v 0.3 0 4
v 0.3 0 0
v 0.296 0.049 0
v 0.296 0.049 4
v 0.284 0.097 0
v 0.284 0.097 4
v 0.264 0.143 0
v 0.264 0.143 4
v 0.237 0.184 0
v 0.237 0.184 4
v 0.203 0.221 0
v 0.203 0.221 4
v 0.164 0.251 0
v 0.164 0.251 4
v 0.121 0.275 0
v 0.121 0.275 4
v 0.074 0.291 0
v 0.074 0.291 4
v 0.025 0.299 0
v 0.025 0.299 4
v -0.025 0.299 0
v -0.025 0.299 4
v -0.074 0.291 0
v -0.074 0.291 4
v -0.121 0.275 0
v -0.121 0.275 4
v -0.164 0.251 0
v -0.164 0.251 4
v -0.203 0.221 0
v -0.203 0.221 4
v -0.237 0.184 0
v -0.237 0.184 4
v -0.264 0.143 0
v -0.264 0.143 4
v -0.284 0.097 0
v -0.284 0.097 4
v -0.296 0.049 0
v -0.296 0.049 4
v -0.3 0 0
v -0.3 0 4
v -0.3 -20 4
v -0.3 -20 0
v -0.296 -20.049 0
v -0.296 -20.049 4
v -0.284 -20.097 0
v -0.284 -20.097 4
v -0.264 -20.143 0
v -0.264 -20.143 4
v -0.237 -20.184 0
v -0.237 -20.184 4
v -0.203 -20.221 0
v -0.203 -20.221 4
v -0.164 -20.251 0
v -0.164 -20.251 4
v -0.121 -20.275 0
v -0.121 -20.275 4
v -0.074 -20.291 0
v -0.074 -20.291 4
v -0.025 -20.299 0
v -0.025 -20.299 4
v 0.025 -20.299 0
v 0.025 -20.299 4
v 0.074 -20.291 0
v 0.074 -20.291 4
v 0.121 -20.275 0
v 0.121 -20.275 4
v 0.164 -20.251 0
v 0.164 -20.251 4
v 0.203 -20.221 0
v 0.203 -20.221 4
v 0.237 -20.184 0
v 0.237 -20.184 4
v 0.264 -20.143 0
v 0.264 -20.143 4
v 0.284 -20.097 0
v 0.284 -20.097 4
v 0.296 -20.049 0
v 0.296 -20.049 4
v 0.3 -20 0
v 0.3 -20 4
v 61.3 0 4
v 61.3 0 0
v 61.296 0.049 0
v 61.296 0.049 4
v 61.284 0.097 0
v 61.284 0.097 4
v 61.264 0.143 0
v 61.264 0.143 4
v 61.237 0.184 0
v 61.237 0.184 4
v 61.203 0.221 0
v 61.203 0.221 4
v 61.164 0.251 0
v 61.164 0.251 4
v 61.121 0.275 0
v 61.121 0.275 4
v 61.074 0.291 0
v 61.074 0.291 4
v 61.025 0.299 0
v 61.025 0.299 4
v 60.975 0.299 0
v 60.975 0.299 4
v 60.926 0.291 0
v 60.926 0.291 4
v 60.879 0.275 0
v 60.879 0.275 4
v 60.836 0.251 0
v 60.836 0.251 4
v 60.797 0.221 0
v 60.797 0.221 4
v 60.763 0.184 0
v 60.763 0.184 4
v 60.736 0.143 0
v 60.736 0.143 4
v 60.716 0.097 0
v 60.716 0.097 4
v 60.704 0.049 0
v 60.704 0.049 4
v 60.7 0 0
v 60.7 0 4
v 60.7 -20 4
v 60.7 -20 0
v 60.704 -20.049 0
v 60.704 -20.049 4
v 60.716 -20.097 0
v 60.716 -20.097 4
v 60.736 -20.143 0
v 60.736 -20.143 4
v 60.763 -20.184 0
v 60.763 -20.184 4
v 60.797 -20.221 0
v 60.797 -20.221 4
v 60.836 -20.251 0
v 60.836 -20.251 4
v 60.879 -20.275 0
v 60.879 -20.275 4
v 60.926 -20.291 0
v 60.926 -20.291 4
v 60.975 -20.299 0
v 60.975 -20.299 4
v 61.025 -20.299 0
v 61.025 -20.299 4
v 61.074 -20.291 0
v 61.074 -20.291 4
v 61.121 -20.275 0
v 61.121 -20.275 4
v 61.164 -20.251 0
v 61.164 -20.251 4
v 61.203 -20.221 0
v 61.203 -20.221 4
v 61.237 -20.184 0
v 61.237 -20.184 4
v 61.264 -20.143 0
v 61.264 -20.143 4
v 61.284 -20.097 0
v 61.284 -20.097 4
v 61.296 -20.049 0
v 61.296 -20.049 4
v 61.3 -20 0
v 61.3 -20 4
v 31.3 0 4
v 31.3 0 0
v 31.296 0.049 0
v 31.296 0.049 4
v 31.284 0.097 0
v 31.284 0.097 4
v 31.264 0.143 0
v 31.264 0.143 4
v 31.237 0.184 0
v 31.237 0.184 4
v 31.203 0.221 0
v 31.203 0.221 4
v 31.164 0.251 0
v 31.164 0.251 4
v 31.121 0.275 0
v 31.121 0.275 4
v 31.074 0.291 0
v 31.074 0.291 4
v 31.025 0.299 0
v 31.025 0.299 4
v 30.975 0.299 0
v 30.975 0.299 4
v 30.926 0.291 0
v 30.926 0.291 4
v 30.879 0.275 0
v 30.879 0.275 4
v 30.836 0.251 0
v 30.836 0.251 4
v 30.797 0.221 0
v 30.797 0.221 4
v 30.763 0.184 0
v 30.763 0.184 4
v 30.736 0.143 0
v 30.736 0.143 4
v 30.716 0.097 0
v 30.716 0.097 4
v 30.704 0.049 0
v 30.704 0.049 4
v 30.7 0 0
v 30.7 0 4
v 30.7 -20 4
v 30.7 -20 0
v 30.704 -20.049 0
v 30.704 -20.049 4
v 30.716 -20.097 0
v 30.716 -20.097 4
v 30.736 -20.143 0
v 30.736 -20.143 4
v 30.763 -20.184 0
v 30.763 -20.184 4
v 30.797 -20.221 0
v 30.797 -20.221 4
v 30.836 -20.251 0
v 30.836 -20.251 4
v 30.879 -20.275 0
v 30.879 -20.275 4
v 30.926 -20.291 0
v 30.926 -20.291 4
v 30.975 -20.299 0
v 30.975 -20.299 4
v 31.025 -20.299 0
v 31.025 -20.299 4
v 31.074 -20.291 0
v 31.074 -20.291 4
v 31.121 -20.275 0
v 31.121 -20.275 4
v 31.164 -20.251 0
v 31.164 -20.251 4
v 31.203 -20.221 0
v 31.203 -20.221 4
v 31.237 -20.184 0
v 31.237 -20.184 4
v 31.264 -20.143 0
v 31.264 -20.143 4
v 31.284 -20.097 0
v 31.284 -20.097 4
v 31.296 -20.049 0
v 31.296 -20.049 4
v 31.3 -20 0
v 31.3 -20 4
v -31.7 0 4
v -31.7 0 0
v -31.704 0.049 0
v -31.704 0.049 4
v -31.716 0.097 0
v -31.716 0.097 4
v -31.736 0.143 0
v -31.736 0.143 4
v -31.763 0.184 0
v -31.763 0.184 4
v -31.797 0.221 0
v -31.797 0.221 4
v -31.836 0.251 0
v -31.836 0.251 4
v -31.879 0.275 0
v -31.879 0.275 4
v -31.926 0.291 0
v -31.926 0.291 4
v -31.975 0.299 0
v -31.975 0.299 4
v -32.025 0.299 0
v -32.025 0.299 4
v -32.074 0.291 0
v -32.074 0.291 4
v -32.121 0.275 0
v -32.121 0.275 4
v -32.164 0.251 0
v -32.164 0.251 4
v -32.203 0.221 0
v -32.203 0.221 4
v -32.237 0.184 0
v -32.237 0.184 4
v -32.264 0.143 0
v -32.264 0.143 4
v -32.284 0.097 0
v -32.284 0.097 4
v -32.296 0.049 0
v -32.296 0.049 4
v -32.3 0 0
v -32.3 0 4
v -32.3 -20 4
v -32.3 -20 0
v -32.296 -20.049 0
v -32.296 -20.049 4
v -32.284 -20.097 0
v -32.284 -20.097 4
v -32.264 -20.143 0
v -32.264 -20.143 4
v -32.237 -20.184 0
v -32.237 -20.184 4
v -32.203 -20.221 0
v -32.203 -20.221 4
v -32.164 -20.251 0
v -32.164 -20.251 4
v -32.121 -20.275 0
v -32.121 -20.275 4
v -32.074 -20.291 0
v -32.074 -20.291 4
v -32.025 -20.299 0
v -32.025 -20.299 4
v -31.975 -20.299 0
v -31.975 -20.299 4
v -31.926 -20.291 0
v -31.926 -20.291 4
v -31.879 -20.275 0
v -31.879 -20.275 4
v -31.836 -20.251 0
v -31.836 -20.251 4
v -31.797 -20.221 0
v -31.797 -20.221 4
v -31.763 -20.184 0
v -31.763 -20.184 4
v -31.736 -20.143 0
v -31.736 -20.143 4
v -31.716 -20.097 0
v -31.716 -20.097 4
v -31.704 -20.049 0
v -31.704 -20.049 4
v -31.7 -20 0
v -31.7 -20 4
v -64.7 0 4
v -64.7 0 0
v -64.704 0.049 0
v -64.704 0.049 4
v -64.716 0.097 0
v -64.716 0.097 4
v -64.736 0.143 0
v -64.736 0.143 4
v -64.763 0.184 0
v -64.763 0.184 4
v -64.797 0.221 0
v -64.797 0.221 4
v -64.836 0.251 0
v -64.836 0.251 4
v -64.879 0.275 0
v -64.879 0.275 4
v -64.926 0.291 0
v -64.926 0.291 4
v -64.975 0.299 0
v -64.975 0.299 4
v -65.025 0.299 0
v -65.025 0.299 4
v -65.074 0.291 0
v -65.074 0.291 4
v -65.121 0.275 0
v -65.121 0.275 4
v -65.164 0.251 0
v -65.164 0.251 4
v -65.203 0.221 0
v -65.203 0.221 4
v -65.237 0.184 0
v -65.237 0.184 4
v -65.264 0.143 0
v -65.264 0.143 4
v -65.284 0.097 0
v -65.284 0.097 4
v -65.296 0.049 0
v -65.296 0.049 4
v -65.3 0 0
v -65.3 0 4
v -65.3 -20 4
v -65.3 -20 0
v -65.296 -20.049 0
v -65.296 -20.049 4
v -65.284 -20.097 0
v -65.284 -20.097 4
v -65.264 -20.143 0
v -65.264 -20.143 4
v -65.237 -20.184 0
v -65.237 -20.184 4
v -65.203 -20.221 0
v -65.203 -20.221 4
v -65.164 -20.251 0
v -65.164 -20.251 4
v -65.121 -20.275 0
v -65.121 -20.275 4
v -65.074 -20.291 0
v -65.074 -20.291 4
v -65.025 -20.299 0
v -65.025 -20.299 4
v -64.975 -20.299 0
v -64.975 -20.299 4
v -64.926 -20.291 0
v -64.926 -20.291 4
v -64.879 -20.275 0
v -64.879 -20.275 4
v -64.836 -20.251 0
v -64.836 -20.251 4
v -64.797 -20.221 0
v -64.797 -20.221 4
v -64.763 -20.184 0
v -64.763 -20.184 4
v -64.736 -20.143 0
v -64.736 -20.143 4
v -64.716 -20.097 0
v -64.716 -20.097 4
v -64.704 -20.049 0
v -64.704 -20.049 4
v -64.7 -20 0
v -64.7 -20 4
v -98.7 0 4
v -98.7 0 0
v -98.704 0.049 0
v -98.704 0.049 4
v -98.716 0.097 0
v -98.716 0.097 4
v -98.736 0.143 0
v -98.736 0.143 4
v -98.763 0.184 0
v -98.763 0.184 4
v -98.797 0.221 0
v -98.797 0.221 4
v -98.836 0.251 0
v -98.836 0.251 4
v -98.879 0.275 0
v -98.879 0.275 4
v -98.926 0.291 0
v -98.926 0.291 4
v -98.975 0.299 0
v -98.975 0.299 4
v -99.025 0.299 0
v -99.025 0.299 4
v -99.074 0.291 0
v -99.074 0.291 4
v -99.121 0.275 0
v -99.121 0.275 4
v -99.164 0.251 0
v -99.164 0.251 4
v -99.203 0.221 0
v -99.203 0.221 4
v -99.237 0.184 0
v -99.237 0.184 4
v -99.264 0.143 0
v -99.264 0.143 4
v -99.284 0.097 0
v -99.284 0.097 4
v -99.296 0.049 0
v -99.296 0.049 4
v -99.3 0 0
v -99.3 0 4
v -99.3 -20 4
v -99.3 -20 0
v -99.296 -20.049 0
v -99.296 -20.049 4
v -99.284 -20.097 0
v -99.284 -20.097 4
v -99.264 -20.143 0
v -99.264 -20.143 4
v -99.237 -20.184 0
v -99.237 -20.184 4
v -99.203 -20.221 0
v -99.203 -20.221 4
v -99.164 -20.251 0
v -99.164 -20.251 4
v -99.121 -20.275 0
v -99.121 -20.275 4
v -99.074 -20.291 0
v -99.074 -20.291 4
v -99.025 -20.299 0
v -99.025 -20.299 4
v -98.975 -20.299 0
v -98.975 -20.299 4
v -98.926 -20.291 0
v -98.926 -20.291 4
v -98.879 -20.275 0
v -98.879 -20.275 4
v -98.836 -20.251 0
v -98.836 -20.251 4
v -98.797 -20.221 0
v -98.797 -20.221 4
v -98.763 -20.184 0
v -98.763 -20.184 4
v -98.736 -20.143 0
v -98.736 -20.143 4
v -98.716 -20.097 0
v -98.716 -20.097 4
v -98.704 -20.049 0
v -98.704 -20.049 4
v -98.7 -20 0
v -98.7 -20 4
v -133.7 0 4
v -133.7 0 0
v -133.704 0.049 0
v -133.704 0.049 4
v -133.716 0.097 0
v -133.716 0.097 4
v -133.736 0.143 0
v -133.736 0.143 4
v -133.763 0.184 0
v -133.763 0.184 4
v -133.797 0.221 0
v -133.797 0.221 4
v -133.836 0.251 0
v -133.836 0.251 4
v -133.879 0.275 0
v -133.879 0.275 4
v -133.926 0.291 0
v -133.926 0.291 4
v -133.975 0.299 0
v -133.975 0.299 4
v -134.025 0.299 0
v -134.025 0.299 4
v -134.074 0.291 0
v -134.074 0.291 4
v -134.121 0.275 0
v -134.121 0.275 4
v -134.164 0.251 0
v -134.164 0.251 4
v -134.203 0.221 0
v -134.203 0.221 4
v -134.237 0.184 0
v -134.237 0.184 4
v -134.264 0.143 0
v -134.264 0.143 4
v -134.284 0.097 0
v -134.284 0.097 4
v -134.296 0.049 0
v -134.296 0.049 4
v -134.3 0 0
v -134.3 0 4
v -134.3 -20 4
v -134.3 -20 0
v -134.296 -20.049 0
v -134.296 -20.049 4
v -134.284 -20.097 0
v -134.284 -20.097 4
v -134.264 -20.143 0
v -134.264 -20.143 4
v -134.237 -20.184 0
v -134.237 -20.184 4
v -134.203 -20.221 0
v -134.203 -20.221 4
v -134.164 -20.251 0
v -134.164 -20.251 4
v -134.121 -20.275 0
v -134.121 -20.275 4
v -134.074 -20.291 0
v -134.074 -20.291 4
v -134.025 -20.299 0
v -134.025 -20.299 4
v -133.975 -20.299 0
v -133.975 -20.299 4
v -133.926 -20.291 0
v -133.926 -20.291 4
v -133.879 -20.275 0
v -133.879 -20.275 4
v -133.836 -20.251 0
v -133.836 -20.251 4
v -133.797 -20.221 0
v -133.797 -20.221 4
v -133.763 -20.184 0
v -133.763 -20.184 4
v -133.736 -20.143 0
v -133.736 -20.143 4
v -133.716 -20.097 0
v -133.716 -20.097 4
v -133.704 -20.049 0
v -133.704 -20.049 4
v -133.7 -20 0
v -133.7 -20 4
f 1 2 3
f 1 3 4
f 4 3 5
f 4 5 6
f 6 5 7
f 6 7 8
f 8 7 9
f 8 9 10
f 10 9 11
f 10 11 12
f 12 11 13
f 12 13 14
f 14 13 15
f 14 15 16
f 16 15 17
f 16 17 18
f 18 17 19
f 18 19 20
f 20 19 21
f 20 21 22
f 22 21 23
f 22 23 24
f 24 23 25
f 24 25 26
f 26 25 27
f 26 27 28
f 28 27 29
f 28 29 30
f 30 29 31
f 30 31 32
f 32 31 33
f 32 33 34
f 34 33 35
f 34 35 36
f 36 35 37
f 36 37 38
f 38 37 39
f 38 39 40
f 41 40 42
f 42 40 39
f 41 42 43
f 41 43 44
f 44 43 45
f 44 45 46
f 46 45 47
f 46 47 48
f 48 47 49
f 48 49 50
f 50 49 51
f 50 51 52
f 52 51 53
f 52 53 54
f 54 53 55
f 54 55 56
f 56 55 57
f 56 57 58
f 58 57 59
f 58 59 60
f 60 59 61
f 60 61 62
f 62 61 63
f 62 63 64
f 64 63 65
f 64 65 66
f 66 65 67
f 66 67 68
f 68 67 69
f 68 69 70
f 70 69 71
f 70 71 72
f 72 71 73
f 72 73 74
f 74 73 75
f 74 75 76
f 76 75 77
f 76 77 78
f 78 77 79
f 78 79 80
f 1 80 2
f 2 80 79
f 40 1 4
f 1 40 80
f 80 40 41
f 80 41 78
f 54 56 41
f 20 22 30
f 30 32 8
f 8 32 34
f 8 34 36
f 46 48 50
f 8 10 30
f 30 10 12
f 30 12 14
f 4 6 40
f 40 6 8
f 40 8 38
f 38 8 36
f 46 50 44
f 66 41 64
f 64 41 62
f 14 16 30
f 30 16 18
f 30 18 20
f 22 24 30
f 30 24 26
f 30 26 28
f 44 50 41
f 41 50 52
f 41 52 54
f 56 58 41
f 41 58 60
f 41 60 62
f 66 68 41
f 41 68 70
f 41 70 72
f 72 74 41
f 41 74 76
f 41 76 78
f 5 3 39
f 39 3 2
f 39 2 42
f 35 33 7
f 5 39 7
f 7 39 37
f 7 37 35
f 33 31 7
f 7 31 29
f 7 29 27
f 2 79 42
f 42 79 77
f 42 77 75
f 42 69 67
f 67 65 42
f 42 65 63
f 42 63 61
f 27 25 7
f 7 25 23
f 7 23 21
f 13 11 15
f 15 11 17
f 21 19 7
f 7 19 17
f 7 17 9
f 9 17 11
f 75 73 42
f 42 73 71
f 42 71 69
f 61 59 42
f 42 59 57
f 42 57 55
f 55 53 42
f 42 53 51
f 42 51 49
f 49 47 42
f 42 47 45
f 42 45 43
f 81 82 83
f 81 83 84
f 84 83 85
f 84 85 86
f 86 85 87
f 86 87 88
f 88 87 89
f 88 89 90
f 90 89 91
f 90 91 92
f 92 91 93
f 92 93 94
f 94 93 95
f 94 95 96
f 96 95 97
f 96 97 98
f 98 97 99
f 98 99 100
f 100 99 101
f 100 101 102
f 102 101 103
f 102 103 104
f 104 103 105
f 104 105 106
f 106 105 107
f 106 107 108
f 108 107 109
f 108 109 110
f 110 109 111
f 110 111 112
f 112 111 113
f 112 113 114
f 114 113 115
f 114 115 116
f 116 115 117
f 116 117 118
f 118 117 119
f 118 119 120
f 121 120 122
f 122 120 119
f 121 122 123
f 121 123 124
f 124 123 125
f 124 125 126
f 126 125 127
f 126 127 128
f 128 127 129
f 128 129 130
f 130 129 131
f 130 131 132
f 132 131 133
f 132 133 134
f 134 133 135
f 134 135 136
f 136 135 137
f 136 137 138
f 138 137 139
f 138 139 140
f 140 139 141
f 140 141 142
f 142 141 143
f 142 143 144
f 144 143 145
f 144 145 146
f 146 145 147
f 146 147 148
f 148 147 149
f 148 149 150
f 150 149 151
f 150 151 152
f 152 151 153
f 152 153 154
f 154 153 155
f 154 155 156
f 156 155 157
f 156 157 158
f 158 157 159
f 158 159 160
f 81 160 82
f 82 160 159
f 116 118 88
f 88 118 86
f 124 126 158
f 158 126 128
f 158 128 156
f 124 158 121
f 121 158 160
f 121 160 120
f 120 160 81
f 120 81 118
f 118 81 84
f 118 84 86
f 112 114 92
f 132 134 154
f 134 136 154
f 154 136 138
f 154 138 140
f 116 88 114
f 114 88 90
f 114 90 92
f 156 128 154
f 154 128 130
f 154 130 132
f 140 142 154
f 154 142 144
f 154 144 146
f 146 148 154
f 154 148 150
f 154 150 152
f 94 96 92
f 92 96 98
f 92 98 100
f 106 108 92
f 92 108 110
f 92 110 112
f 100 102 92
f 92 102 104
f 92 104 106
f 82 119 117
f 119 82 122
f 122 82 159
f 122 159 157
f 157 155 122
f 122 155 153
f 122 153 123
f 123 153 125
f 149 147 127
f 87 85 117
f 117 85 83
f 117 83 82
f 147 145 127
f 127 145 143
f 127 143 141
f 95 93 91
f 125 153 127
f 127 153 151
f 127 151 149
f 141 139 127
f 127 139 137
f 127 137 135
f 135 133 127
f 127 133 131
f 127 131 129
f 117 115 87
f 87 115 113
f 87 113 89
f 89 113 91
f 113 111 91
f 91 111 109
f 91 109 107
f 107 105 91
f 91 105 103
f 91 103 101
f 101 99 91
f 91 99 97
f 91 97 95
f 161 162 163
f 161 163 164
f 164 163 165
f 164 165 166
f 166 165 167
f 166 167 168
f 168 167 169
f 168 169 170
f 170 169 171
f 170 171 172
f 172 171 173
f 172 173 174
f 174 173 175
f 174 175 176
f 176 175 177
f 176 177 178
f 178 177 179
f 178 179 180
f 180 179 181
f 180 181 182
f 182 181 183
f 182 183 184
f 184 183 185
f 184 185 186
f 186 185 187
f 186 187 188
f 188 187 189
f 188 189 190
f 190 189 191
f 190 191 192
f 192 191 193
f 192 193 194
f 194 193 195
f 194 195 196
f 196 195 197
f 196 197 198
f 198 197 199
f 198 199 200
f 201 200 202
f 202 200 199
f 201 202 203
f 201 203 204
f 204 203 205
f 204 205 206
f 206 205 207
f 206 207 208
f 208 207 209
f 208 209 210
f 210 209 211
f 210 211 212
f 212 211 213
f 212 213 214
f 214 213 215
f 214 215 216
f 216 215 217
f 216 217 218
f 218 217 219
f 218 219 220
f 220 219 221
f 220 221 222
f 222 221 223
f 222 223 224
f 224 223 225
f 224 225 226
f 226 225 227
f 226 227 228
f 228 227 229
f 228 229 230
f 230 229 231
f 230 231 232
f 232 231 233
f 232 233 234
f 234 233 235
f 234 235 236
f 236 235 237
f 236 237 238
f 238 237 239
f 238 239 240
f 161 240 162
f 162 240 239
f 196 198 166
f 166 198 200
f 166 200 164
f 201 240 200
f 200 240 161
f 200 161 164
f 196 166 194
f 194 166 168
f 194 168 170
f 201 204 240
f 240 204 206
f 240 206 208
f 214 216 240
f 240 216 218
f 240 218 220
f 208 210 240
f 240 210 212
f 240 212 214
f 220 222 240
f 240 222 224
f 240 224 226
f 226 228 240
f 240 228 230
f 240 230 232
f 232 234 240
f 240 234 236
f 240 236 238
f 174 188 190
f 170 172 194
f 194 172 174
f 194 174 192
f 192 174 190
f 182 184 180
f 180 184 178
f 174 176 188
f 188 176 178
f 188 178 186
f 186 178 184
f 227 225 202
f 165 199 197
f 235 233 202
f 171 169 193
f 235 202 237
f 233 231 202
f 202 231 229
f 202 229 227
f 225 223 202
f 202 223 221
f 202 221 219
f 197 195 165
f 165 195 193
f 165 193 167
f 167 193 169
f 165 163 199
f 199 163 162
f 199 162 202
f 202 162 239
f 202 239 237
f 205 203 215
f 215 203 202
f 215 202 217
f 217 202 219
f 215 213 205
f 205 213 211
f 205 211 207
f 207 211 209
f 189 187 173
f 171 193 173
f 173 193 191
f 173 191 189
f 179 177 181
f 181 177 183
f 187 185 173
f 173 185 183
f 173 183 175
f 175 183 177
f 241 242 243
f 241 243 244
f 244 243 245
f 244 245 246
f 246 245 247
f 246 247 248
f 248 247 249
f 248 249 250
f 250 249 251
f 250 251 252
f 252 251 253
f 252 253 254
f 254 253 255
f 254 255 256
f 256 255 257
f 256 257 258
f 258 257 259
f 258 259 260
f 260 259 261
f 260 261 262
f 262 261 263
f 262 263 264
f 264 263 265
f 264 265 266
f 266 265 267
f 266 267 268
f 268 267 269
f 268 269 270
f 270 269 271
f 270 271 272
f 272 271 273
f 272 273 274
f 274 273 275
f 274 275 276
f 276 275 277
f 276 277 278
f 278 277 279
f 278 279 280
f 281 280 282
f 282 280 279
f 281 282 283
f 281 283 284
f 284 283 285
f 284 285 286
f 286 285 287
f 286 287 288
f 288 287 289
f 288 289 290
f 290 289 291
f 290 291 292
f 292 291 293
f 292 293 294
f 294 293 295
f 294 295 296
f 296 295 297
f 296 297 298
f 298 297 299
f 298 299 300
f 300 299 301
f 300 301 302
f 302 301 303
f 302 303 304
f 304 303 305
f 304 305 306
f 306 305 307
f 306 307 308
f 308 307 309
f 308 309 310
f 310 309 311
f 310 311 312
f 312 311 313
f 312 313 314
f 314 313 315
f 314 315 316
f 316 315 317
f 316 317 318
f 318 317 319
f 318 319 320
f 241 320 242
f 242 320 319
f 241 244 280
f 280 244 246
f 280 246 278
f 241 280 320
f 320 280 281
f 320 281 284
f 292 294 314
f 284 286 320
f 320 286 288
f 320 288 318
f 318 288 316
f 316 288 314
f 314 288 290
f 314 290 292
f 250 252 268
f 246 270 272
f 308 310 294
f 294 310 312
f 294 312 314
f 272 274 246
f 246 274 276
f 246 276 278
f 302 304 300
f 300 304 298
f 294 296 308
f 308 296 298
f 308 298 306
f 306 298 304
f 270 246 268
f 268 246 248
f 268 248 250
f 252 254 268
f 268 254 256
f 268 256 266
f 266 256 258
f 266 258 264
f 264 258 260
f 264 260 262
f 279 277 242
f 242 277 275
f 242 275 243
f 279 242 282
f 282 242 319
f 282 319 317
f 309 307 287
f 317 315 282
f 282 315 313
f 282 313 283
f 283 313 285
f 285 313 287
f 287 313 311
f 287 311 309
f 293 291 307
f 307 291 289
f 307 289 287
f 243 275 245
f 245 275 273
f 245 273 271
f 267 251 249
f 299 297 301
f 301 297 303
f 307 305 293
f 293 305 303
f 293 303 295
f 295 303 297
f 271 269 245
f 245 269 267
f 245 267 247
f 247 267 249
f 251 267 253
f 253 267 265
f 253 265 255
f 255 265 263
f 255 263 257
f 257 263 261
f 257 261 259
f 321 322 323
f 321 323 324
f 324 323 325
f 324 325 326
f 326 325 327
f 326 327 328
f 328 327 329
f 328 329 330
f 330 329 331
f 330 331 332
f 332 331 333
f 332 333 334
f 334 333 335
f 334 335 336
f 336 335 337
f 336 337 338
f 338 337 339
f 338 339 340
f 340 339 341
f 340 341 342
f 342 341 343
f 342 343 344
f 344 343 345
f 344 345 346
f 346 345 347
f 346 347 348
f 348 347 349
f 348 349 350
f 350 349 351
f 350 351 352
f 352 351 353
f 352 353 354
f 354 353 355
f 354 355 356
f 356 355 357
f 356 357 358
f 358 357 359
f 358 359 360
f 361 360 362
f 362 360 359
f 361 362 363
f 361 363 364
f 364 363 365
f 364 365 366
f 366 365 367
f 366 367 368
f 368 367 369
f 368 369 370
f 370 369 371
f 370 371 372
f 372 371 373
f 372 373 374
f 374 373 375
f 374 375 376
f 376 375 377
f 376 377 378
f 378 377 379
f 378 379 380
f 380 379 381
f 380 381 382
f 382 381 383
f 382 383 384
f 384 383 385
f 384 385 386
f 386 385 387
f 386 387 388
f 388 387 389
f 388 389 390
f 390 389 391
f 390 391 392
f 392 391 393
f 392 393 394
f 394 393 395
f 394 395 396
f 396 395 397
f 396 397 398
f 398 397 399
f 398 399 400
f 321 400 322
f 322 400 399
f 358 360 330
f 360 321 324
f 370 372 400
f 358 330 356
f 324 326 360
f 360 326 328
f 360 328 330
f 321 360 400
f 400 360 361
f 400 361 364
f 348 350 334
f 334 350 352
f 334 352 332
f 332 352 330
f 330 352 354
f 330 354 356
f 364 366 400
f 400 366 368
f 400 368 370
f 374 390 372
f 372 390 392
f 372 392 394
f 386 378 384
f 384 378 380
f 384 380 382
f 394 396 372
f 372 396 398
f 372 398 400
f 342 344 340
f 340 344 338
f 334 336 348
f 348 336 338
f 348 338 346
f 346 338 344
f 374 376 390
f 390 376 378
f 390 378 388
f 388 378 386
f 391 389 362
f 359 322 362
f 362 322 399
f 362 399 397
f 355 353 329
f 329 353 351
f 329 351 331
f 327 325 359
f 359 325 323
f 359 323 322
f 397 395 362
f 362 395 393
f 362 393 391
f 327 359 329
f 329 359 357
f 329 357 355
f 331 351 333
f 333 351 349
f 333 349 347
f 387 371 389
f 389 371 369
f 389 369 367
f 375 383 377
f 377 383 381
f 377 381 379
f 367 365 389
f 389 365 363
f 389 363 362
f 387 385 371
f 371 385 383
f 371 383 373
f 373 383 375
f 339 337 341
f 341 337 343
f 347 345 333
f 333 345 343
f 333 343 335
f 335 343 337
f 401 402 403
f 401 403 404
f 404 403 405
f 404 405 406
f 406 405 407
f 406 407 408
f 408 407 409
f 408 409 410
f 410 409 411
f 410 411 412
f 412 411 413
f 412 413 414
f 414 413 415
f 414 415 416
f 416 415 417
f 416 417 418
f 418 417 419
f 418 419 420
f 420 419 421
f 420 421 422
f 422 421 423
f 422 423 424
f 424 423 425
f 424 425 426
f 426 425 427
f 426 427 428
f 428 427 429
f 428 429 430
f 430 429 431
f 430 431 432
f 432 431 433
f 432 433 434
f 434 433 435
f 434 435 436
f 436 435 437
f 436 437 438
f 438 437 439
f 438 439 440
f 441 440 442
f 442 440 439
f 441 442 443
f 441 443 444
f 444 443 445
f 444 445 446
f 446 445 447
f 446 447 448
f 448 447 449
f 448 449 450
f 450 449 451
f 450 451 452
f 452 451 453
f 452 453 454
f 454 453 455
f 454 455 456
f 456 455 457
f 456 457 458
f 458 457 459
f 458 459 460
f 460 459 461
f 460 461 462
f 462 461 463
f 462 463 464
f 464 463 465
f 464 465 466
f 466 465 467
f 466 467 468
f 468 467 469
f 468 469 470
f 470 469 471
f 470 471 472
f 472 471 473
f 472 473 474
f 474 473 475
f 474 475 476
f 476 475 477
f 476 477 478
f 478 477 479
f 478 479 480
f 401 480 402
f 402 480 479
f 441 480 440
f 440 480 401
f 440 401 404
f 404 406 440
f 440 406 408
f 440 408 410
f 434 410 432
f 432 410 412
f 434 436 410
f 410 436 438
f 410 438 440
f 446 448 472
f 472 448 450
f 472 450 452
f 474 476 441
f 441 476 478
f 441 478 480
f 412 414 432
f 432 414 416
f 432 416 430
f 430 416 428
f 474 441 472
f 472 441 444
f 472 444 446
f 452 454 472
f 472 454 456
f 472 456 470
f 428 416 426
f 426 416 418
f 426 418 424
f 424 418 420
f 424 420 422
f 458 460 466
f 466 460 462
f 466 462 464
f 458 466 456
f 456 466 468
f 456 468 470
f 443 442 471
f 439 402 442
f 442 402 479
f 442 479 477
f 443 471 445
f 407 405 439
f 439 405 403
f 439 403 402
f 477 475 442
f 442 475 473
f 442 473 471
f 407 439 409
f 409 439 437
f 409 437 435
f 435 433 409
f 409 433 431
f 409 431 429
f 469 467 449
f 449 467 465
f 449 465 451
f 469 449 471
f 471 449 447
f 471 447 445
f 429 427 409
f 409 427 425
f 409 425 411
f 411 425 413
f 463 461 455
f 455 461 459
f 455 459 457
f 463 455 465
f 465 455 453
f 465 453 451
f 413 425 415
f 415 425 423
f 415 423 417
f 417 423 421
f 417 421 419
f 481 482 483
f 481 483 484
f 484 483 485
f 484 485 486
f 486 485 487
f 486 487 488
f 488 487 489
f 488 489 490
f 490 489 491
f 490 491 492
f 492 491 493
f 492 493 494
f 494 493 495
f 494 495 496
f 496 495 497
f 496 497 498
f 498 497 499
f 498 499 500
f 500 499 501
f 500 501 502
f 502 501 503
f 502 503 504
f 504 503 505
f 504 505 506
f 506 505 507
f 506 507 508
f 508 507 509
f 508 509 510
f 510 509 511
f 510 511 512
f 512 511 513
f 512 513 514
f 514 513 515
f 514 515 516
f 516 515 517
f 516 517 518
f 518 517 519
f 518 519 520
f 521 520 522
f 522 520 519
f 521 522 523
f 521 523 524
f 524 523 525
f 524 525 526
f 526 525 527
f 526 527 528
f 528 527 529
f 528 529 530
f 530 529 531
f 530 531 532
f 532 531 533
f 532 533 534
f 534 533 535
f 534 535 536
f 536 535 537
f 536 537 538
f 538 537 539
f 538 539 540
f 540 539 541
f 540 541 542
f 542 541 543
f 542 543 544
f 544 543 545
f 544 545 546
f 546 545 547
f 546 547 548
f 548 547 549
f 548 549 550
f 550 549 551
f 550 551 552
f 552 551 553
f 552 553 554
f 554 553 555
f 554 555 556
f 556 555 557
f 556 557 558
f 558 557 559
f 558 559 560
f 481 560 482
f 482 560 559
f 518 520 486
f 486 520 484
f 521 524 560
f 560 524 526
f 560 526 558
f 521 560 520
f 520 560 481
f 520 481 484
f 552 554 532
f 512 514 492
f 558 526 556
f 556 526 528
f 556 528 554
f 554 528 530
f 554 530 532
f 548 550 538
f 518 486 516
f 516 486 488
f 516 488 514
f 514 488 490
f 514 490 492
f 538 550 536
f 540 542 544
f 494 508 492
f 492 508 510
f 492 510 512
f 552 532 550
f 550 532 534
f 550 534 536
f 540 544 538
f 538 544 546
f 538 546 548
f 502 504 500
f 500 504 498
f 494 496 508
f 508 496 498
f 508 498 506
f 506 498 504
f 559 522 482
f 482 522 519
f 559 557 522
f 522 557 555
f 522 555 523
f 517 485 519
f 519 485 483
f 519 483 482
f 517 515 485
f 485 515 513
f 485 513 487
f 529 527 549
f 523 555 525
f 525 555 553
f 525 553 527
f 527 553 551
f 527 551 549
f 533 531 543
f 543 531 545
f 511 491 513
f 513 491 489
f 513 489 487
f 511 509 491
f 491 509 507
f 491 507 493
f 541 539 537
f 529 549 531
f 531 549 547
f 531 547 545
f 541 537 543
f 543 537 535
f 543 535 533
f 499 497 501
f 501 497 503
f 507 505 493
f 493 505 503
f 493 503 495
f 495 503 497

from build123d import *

# Parameters (mm, degrees)
BOSS_EXTRUDE1_DEPTH   = 4
BOSS_EXTRUDE1_2_DEPTH = 4
BOSS_EXTRUDE1_3_DEPTH = 4
BOSS_EXTRUDE1_4_DEPTH = 4
BOSS_EXTRUDE1_5_DEPTH = 4
BOSS_EXTRUDE1_6_DEPTH = 4
BOSS_EXTRUDE1_7_DEPTH = 4


with BuildPart() as part:
    # Sketch1 → Boss-Extrude1 (new body)
    with BuildSketch(Plane.XY):
        with BuildLine():
            Line((0.3, 0), (0.3, -20))
            ThreePointArc((0.3, -20), (0, -20.3), (-0.3, -20))
            Line((-0.3, -20), (-0.3, 0))
            ThreePointArc((-0.3, 0), (0, 0.3), (0.3, 0))
        make_face()
    extrude(amount=BOSS_EXTRUDE1_DEPTH)


with BuildPart() as body_2:
    # Sketch1 → Boss-Extrude1 2 (new body)
    with BuildSketch(Plane.XY):
        with BuildLine():
            Line((61.3, 0), (61.3, -20))
            ThreePointArc((61.3, -20), (61, -20.3), (60.7, -20))
            Line((60.7, -20), (60.7, 0))
            ThreePointArc((60.7, 0), (61, 0.3), (61.3, 0))
        make_face()
    extrude(amount=BOSS_EXTRUDE1_2_DEPTH)


with BuildPart() as body_3:
    # Sketch1 → Boss-Extrude1 3 (new body)
    with BuildSketch(Plane.XY):
        with BuildLine():
            Line((31.3, 0), (31.3, -20))
            ThreePointArc((31.3, -20), (31, -20.3), (30.7, -20))
            Line((30.7, -20), (30.7, 0))
            ThreePointArc((30.7, 0), (31, 0.3), (31.3, 0))
        make_face()
    extrude(amount=BOSS_EXTRUDE1_3_DEPTH)


with BuildPart() as body_4:
    # Sketch1 → Boss-Extrude1 4 (new body)
    with BuildSketch(Plane.XY):
        with BuildLine():
            Line((-31.7, 0), (-31.7, -20))
            ThreePointArc((-31.7, -20), (-32, -20.3), (-32.3, -20))
            Line((-32.3, -20), (-32.3, 0))
            ThreePointArc((-32.3, 0), (-32, 0.3), (-31.7, 0))
        make_face()
    extrude(amount=BOSS_EXTRUDE1_4_DEPTH)


with BuildPart() as body_5:
    # Sketch1 → Boss-Extrude1 5 (new body)
    with BuildSketch(Plane.XY):
        with BuildLine():
            Line((-64.7, 0), (-64.7, -20))
            ThreePointArc((-64.7, -20), (-65, -20.3), (-65.3, -20))
            Line((-65.3, -20), (-65.3, 0))
            ThreePointArc((-65.3, 0), (-65, 0.3), (-64.7, 0))
        make_face()
    extrude(amount=BOSS_EXTRUDE1_5_DEPTH)


with BuildPart() as body_6:
    # Sketch1 → Boss-Extrude1 6 (new body)
    with BuildSketch(Plane.XY):
        with BuildLine():
            Line((-98.7, 0), (-98.7, -20))
            ThreePointArc((-98.7, -20), (-99, -20.3), (-99.3, -20))
            Line((-99.3, -20), (-99.3, 0))
            ThreePointArc((-99.3, 0), (-99, 0.3), (-98.7, 0))
        make_face()
    extrude(amount=BOSS_EXTRUDE1_6_DEPTH)


with BuildPart() as body_7:
    # Sketch1 → Boss-Extrude1 7 (new body)
    with BuildSketch(Plane.XY):
        with BuildLine():
            Line((-133.7, 0), (-133.7, -20))
            ThreePointArc((-133.7, -20), (-134, -20.3), (-134.3, -20))
            Line((-134.3, -20), (-134.3, 0))
            ThreePointArc((-134.3, 0), (-134, 0.3), (-133.7, 0))
        make_face()
    extrude(amount=BOSS_EXTRUDE1_7_DEPTH)


solid = Compound([part.part, body_2.part, body_3.part, body_4.part, body_5.part, body_6.part, body_7.part])
